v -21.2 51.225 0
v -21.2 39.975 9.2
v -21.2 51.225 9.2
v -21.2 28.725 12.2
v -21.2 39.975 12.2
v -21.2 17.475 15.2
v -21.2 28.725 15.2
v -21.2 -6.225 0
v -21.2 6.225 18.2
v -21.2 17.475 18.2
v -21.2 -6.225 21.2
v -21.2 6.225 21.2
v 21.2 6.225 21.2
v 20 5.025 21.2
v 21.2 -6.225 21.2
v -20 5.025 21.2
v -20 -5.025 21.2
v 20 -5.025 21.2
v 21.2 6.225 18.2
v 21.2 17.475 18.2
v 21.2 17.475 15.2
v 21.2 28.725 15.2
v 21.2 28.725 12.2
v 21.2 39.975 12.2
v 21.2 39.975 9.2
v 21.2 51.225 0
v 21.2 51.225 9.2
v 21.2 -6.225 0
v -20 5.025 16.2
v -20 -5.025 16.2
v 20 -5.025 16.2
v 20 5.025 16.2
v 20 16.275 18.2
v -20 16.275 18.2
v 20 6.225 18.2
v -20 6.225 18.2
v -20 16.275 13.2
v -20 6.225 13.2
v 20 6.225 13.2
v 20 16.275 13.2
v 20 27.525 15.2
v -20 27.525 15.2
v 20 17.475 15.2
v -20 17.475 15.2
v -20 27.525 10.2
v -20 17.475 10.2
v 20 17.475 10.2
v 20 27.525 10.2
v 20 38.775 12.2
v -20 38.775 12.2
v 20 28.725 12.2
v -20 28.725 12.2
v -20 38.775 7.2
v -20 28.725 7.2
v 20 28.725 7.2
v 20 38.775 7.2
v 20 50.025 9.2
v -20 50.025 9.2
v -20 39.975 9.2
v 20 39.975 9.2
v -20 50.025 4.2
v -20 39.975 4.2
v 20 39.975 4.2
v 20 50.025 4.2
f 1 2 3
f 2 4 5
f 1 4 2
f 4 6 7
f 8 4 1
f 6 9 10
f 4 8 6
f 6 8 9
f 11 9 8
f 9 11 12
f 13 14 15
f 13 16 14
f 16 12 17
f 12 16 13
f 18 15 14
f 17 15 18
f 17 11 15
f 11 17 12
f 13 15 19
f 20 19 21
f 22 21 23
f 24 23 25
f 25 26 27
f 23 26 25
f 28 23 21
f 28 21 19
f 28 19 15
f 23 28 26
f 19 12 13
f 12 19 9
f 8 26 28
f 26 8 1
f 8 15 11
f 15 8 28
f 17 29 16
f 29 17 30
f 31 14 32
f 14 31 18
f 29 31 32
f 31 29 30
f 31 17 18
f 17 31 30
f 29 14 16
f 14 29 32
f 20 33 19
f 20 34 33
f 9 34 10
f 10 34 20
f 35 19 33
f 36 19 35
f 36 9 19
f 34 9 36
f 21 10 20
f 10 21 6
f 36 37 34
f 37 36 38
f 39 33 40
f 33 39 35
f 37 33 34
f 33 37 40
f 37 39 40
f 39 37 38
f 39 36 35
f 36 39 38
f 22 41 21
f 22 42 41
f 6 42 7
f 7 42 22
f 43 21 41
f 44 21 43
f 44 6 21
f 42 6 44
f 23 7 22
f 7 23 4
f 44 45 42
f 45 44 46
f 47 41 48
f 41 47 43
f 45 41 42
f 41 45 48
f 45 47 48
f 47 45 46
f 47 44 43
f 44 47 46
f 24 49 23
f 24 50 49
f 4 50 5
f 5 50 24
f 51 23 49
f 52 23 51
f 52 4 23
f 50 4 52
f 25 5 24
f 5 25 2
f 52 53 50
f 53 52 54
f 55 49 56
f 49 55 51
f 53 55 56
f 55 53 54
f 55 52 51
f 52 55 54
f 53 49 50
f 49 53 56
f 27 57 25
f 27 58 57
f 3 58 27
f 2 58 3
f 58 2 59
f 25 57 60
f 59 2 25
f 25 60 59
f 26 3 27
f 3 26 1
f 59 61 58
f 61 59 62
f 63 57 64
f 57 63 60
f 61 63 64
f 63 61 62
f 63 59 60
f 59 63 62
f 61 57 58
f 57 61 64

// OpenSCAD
count = 5;
depth = 5;
offset = 3;
thickness = 1.2;
width = 10.05;
length = 40;

// Doesn't work properly yet
angle = 0;

module holder(i) {
	h = depth+thickness + (count-i)*offset;
	translate([0, i*(width+thickness), 0])
	difference() {
		union() {
			translate([0, 0, h/2]) cube([length+thickness*2, width+thickness*2, h], center=true);
			if (angle != 0 && i == count-1) {
				translate([0, 0, 0]) cube([length+thickness*2, width+thickness*2, h], center=true);
			}
		}
		translate([0, 0, h-depth/2]) cube([length, width, depth+0.001], center=true);
	}
}

module full() {
	for (i = [0:count-1]) {
		holder(i);
	}
}

if (angle != 0) {
	render()
	difference() {
		translate([0, 0, -(count-1)*offset])
		rotate([angle, 0, 0])
		full();
		translate([0, 0, -500])
		cube([1000, 1000, 1000], center=true);
	}
} else {
	full();
}
